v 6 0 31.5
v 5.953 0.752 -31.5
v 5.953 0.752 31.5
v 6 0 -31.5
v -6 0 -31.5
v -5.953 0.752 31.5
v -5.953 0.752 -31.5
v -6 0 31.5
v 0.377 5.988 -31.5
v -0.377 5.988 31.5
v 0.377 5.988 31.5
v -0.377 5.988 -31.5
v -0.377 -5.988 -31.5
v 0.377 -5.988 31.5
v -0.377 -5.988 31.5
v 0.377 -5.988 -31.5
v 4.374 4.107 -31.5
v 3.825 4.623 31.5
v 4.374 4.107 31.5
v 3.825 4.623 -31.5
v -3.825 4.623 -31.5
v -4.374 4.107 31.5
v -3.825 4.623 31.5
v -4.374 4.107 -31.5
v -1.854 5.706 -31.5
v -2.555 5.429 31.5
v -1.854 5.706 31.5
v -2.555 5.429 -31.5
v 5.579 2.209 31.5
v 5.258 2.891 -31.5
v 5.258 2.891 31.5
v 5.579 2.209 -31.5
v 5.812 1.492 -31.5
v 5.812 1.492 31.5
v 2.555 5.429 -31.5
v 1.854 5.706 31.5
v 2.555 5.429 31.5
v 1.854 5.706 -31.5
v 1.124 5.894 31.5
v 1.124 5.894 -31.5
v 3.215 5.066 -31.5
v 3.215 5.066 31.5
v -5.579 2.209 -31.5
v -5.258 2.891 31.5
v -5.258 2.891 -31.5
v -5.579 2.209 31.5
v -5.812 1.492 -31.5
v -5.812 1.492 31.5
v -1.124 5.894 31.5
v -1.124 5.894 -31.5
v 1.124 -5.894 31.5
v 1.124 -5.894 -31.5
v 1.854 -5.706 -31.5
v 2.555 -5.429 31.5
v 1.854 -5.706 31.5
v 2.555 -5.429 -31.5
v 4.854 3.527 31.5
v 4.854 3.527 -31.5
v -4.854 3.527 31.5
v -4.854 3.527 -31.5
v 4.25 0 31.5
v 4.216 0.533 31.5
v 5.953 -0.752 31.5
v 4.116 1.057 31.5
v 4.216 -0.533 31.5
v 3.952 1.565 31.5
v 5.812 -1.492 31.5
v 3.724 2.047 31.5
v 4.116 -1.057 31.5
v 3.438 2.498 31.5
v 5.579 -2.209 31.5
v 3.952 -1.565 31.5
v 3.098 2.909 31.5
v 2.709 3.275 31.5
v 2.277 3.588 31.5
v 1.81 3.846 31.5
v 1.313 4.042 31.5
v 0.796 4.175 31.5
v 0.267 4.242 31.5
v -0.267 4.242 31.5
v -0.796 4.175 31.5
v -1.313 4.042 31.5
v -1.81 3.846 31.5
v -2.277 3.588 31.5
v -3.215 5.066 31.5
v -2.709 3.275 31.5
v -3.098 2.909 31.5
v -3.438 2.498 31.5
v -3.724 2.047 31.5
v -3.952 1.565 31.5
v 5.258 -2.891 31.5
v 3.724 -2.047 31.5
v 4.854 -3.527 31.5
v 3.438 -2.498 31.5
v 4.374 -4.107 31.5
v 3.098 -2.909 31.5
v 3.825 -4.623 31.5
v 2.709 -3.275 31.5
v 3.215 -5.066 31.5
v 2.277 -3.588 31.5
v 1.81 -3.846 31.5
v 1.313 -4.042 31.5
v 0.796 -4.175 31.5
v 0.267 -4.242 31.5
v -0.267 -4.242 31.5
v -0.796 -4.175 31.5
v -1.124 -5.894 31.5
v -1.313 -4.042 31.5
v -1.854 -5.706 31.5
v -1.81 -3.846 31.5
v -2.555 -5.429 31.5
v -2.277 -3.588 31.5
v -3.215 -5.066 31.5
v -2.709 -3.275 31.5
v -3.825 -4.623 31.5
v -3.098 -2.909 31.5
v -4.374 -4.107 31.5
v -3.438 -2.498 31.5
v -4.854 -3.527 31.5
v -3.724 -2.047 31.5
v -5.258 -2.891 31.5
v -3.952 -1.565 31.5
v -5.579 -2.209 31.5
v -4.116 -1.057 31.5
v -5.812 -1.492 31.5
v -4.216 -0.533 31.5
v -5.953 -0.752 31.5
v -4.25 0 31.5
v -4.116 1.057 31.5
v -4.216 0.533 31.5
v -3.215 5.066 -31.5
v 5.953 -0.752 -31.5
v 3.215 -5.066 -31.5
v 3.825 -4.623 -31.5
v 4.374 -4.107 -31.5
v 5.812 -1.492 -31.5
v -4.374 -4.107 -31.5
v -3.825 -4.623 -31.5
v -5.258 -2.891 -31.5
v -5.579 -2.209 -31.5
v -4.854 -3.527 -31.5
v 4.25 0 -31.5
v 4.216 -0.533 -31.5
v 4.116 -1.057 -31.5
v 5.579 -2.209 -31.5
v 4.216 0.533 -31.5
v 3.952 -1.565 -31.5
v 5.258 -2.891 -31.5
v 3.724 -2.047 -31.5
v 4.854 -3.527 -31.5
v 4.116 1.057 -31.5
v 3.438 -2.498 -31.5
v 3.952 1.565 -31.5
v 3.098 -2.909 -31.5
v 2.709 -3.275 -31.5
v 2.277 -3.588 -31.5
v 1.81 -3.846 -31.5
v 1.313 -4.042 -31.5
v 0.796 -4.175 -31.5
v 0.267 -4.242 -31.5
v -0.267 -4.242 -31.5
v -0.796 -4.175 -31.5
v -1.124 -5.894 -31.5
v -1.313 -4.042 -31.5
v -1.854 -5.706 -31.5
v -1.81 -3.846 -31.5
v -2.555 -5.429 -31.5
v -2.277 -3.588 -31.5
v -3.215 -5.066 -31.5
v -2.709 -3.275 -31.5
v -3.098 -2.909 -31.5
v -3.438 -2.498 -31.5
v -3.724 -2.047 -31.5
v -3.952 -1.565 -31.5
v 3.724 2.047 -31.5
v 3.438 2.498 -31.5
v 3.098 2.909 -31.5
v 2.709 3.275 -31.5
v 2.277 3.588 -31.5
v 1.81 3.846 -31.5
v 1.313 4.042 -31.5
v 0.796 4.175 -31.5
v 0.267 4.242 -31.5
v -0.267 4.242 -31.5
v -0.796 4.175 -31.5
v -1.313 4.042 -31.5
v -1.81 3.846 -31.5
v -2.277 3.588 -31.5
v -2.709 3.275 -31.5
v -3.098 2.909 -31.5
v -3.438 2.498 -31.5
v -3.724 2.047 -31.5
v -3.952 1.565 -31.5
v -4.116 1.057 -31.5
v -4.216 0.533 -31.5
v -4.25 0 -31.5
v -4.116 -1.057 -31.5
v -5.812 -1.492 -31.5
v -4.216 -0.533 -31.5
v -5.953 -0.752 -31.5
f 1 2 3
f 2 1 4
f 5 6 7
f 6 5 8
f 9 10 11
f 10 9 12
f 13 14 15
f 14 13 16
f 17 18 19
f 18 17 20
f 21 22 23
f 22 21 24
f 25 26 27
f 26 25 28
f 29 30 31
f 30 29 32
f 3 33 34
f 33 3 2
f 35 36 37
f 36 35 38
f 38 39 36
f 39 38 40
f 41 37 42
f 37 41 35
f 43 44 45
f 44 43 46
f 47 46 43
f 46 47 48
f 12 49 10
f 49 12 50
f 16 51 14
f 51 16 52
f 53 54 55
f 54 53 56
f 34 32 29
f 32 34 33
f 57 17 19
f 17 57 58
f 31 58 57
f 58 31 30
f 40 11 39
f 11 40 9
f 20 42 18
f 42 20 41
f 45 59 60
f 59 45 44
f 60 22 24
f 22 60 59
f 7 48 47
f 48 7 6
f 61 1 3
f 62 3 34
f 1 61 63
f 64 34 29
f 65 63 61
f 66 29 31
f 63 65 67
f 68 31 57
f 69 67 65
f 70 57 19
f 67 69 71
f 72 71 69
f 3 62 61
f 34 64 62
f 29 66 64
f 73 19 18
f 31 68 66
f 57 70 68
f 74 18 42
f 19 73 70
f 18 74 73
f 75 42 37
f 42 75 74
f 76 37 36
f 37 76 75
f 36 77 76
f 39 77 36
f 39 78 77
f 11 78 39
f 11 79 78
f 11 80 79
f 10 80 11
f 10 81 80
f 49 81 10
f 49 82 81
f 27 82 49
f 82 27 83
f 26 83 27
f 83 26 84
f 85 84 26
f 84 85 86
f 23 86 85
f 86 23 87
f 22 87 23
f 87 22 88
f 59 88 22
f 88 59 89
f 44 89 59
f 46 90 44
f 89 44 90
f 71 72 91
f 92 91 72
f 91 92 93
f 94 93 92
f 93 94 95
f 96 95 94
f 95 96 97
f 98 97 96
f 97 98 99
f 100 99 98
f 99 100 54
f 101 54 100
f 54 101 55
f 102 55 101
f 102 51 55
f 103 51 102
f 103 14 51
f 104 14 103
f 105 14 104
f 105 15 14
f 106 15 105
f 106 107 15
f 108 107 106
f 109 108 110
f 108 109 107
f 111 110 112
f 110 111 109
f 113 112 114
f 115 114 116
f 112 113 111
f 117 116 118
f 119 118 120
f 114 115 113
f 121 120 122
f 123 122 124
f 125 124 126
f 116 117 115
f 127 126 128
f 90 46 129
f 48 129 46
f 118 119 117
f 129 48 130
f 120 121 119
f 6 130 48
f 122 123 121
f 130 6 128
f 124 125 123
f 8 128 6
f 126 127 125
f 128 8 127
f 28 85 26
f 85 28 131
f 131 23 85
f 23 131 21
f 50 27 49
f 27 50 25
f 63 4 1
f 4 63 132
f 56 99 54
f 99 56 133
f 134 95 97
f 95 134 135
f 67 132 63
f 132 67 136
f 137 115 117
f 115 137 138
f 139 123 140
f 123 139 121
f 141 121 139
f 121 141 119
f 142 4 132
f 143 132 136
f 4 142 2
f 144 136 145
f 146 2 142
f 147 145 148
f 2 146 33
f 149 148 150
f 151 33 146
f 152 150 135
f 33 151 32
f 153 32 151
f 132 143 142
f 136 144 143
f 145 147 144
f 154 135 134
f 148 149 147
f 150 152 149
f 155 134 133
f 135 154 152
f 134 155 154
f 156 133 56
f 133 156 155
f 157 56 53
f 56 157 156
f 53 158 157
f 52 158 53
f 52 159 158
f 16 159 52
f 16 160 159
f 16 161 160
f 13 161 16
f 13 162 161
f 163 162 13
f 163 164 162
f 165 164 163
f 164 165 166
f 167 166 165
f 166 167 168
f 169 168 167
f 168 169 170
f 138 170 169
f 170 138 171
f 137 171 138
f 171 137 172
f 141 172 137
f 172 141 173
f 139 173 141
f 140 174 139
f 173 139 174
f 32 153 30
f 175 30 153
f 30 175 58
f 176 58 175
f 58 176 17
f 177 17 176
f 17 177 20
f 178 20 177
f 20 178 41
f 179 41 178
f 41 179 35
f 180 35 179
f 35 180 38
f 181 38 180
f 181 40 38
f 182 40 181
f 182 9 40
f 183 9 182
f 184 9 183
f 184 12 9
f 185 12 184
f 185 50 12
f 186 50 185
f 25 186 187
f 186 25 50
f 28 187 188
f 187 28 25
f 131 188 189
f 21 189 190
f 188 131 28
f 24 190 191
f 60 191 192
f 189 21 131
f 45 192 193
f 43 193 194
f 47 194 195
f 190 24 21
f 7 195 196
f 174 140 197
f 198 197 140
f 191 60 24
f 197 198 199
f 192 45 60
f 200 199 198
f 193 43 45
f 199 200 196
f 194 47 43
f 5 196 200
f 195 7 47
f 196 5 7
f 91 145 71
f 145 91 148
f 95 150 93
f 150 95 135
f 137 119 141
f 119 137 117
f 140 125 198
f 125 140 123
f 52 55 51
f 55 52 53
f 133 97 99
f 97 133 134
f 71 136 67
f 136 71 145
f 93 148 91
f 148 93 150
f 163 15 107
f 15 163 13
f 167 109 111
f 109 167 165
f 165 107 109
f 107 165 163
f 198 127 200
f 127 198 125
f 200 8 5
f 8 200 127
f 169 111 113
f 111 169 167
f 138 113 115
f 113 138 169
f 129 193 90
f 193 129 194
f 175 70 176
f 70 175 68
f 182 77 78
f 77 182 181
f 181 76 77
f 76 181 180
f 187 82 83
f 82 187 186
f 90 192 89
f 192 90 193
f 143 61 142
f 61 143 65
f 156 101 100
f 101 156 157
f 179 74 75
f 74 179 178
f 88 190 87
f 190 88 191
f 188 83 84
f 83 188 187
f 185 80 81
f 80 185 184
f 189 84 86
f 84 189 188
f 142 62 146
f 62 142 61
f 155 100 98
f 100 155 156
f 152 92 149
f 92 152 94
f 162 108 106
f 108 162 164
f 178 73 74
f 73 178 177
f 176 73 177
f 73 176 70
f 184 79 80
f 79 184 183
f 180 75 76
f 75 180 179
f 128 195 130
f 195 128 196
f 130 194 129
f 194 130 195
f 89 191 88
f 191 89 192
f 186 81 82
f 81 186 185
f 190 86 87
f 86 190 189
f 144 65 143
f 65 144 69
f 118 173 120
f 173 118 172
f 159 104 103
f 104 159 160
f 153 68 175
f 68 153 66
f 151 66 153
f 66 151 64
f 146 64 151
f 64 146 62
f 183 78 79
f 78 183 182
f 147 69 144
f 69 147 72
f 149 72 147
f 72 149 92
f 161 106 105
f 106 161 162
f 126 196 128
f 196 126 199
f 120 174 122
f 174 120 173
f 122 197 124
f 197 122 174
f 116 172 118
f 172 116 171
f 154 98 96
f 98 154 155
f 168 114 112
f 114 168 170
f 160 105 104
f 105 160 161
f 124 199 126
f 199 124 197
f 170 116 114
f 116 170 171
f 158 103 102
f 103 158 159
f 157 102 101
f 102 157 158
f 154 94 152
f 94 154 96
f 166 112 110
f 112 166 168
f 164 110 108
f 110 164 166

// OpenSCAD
$fn = 50;


difference() {
	union() {
		translate(v = [0, 0, -31.5000000000]) {
			cylinder(h = 63, r = 6.0000000000);
		}
	}
	union() {
		translate(v = [0, 0, -100.0000000000]) {
			cylinder(h = 200, r = 4.2500000000);
		}
	}
}
